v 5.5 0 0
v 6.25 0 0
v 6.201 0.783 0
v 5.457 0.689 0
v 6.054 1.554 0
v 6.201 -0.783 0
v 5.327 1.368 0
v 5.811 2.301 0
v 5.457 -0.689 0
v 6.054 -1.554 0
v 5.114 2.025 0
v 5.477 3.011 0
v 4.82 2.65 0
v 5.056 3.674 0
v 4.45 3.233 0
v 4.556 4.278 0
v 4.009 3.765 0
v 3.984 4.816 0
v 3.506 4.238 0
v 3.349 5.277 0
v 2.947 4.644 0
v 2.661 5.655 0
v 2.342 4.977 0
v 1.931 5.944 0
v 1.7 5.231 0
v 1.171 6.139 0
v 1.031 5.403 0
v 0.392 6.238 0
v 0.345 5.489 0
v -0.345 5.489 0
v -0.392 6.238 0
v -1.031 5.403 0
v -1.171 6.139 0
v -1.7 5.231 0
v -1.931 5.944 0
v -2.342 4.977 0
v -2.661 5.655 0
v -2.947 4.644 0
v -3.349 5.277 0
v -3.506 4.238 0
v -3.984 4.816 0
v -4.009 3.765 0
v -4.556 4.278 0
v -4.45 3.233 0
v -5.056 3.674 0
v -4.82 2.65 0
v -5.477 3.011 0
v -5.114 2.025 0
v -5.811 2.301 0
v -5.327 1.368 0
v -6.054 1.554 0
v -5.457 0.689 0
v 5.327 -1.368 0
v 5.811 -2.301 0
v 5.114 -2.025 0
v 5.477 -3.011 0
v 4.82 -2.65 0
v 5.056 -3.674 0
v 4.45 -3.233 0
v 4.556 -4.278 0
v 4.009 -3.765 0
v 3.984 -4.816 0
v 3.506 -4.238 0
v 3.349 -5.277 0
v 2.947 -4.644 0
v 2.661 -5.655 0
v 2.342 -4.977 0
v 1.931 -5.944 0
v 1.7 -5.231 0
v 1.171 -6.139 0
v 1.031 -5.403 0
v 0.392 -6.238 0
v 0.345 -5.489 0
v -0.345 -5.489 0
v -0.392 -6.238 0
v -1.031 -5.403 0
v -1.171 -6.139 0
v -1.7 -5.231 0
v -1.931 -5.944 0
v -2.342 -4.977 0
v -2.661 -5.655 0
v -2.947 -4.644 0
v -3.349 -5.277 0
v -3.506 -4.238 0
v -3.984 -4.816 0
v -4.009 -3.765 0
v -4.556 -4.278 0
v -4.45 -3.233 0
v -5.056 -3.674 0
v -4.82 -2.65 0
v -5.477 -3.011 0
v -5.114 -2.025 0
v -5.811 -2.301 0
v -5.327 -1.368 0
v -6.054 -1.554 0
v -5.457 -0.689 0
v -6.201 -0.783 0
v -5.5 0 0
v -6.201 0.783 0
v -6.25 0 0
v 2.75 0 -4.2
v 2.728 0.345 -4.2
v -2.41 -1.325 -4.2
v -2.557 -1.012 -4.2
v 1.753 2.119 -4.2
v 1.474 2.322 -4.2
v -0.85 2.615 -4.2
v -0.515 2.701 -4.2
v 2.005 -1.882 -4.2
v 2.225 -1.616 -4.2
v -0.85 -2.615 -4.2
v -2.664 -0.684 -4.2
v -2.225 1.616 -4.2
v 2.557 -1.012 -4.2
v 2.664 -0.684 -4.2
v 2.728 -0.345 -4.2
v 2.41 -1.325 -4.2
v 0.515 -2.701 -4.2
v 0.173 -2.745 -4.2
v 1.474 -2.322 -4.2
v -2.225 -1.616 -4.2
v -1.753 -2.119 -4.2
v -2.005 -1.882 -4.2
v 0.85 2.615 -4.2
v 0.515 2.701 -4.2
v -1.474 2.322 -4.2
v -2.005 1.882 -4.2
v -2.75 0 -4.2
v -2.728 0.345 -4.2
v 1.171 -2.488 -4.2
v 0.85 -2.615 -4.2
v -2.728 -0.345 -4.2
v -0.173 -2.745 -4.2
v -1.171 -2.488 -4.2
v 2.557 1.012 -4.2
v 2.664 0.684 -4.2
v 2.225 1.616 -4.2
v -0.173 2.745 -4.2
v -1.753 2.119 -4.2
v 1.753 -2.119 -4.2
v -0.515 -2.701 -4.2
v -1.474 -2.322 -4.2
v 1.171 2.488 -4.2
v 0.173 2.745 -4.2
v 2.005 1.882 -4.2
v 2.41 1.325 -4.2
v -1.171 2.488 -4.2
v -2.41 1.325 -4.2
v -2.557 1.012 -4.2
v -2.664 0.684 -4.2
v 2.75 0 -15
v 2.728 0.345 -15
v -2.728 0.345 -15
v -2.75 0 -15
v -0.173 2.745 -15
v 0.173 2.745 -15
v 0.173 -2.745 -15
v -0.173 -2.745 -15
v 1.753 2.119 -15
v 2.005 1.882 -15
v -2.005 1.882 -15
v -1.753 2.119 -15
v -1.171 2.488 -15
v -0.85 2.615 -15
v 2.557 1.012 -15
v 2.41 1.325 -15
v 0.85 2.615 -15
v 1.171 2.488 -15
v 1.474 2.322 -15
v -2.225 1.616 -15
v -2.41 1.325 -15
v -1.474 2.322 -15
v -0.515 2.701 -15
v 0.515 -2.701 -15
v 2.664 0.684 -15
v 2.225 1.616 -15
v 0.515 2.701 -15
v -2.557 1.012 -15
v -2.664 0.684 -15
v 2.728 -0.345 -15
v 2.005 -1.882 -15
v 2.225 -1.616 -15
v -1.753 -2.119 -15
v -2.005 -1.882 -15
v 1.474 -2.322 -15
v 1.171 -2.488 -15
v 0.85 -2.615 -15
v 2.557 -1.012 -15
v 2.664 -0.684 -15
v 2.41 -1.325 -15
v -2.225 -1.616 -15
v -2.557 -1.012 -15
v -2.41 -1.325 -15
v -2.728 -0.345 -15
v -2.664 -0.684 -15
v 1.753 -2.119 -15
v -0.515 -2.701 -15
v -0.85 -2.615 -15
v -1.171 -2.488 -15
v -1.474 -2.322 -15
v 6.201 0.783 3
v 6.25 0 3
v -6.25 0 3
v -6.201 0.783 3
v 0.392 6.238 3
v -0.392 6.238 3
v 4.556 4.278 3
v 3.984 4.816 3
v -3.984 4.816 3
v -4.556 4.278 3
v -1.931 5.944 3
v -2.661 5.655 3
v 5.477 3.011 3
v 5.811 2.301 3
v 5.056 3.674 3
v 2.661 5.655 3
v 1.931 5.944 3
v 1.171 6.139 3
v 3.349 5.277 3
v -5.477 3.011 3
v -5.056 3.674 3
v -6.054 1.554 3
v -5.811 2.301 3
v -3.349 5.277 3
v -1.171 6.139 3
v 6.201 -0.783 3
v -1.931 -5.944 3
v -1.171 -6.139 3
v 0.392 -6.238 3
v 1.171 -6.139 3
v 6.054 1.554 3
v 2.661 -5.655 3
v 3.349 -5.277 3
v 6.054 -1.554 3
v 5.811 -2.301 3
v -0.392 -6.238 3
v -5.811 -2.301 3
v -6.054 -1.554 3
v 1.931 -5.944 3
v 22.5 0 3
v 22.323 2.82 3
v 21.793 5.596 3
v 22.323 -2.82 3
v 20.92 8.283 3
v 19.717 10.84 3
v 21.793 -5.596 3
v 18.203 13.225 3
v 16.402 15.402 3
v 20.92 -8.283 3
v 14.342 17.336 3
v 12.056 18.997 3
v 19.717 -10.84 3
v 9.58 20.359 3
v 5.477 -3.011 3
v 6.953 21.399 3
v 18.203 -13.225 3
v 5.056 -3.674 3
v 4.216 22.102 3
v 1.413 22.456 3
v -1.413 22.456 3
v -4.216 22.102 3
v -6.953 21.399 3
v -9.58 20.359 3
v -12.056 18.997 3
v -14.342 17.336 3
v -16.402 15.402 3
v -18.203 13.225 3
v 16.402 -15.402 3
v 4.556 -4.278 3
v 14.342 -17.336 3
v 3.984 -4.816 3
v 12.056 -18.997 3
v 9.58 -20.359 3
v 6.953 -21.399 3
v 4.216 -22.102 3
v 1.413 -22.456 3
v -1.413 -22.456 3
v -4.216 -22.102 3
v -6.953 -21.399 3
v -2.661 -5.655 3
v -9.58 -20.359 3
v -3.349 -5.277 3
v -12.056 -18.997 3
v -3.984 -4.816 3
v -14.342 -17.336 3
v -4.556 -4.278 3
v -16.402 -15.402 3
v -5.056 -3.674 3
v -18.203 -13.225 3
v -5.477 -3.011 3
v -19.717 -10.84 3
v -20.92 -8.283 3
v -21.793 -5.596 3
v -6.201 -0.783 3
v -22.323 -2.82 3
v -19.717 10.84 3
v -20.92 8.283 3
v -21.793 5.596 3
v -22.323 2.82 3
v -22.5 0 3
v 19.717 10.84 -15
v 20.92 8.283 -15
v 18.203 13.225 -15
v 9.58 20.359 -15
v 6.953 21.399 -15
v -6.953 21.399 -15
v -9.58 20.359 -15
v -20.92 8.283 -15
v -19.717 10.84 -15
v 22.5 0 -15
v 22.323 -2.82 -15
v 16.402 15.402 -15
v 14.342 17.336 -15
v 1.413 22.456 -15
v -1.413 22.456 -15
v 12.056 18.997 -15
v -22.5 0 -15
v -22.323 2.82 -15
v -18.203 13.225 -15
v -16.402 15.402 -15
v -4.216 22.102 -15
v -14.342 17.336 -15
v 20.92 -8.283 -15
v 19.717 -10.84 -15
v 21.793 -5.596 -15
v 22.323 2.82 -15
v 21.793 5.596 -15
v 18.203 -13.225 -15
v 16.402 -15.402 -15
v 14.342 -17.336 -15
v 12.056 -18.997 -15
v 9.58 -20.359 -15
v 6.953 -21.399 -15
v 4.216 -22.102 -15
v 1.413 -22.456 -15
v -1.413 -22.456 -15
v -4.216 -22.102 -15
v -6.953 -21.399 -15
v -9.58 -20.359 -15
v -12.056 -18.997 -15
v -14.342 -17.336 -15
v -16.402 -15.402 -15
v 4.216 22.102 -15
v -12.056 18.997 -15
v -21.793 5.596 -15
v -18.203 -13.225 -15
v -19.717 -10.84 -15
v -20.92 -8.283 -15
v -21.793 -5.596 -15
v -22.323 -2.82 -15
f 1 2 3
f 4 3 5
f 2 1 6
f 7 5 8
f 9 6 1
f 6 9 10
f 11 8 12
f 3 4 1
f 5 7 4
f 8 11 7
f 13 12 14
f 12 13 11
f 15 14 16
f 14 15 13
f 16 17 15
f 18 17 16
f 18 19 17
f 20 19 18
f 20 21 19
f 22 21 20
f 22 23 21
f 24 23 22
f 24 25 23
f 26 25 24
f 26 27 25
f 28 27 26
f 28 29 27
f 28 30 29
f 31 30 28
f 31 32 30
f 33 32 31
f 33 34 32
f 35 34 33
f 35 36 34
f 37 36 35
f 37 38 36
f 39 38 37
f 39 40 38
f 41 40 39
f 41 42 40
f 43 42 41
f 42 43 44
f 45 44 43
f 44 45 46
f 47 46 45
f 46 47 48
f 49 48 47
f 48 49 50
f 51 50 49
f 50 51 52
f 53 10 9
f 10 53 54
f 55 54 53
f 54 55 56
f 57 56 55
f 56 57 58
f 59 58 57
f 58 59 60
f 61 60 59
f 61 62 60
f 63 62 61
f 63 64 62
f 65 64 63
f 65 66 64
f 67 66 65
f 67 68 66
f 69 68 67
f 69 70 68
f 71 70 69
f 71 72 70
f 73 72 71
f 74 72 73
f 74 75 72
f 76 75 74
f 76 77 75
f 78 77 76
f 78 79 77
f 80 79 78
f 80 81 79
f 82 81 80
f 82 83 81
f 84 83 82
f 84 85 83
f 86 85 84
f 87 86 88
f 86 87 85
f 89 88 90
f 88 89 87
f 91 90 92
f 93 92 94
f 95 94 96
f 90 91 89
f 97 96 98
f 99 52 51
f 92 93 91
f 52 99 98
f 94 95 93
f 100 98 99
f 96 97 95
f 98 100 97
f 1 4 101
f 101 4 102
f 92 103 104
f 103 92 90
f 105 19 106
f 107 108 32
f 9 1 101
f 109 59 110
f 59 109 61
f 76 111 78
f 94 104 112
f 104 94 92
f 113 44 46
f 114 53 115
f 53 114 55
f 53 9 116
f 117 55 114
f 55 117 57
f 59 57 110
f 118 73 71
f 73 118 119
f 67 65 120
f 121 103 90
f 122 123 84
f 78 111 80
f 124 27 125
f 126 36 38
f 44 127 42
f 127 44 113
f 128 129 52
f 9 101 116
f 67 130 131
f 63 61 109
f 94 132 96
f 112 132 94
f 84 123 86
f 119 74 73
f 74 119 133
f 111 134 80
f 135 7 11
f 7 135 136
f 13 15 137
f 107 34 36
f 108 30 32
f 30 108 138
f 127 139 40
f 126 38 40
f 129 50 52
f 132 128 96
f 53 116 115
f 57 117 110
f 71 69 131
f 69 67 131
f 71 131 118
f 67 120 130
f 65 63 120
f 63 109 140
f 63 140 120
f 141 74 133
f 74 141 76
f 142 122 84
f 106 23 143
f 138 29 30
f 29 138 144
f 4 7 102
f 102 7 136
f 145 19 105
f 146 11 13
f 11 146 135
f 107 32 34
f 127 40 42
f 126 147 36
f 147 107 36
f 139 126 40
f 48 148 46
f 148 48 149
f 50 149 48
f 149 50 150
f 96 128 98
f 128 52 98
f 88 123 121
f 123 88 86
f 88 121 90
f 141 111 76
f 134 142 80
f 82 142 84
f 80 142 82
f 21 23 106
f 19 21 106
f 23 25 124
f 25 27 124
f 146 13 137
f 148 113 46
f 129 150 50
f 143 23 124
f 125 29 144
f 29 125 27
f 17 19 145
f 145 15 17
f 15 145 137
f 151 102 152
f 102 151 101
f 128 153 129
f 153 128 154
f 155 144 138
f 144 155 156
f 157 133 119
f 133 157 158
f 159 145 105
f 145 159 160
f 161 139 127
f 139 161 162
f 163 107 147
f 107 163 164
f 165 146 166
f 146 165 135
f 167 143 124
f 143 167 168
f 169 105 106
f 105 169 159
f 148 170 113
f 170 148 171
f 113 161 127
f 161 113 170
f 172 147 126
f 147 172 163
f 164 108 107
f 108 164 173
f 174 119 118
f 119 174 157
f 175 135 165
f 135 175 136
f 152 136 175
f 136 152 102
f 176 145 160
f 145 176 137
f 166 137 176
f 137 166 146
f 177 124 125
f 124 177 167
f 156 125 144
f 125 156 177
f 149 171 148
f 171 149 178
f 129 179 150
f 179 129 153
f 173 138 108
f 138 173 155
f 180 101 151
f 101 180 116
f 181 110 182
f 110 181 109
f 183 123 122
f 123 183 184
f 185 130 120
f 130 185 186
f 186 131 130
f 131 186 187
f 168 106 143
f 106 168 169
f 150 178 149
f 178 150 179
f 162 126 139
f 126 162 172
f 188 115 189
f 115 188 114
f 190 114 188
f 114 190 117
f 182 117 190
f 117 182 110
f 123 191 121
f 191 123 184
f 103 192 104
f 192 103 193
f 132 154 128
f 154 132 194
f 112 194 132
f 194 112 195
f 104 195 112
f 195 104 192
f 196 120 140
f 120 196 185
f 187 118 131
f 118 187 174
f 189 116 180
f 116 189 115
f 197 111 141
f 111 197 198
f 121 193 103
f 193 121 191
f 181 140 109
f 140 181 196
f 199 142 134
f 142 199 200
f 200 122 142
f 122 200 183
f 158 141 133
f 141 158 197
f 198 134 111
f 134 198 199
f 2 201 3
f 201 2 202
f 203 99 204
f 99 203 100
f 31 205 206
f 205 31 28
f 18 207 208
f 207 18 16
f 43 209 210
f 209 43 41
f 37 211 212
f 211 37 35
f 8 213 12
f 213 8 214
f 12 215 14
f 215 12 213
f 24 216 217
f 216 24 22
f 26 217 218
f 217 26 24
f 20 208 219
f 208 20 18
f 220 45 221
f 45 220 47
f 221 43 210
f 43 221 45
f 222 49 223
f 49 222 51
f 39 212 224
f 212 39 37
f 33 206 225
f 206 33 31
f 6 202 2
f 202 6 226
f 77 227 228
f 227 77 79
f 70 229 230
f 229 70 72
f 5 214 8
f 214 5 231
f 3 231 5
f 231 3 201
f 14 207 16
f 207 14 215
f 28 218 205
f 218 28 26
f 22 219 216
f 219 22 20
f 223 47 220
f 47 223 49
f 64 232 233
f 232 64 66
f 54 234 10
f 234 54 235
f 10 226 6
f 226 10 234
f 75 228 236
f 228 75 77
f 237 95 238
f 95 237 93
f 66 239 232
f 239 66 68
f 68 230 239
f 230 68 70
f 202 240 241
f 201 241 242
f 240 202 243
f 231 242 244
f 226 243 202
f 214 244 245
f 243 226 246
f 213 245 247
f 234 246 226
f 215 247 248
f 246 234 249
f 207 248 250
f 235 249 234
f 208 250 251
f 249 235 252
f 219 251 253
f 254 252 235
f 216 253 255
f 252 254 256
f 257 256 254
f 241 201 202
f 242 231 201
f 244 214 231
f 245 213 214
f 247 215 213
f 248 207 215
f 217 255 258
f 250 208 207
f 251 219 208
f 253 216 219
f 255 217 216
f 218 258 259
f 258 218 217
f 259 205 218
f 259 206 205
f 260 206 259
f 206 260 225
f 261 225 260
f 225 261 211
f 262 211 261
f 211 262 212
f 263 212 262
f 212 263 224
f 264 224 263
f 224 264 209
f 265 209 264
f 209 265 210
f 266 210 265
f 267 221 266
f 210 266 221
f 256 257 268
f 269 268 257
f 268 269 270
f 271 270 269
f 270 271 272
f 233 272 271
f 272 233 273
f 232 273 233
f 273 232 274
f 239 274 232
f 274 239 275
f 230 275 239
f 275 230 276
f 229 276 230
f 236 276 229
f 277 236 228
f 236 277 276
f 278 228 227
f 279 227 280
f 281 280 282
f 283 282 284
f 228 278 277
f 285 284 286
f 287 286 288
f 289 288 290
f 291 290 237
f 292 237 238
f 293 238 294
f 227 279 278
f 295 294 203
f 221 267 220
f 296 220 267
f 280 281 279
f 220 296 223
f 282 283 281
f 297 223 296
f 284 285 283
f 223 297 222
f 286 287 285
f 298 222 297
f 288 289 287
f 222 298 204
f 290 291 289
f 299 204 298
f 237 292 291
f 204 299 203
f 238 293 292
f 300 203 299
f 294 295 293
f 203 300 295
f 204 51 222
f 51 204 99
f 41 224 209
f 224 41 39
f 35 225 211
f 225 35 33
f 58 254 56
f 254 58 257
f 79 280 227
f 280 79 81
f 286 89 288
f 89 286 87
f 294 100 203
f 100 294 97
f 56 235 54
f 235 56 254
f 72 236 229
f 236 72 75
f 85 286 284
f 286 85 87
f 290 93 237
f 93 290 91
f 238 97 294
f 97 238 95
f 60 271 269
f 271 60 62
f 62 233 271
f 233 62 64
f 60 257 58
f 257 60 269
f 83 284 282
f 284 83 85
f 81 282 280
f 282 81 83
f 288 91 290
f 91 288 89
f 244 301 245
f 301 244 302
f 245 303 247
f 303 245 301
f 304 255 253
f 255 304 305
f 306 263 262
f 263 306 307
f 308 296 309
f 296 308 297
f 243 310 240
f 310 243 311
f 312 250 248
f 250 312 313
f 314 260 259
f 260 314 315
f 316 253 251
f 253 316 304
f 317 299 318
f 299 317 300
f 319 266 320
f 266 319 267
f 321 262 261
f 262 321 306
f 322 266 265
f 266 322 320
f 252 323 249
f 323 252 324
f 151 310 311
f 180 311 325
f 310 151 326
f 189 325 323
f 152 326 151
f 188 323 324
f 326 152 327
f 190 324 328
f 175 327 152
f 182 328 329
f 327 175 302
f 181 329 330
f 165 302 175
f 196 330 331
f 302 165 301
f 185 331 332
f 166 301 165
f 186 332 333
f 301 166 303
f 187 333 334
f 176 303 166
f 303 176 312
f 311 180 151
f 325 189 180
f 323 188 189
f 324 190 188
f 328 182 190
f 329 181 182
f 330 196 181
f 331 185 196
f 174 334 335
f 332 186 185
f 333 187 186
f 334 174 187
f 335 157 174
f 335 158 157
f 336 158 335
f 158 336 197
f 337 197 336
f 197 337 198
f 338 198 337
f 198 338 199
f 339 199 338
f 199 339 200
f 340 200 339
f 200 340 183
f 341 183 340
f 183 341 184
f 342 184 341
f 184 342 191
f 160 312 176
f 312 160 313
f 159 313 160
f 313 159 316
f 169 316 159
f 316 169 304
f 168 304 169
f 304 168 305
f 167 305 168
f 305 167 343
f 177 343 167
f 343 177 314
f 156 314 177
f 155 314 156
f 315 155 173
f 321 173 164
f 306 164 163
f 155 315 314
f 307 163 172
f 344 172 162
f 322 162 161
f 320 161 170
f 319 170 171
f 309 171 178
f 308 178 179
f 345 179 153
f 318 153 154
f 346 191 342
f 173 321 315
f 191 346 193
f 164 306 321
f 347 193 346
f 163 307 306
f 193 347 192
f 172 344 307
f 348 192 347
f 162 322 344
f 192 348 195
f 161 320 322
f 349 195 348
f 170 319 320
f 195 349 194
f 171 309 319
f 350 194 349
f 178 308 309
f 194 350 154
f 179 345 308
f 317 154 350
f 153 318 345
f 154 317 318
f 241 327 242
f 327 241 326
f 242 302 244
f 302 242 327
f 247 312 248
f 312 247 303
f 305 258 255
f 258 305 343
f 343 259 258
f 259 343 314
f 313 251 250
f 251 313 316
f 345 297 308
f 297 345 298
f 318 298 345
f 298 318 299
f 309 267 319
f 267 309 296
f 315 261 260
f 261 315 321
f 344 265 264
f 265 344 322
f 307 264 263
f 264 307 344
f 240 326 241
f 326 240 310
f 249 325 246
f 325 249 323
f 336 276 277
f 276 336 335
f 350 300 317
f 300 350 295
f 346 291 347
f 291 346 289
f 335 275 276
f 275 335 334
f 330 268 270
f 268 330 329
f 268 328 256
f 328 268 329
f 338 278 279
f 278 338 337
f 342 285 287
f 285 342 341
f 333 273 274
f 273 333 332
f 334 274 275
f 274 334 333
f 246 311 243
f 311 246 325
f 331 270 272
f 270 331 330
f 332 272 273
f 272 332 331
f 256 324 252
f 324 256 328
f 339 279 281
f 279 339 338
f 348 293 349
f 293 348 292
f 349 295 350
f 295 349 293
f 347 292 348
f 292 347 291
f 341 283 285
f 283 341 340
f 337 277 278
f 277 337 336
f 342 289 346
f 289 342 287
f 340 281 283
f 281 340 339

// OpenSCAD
$fn = 50;

difference() {
	union() {
		translate(v = [0, 0, -15.0]) {
			cylinder(h = 18, r = 22.5);
		}
	}
	union() {
		translate(v = [0, 0, 0]) {
			rotate(a = [0, 0, 0]) {
				difference() {
					union() {
						translate(v = [0, 0, -18.0]) {
							cylinder(h = 18, r = 2.25);
						}
						translate(v = [0, 0, -4.2]) {
							cylinder(h = 4.2, r1 = 2.75, r2 = 5.5);
						}
						translate(v = [0, 0, -18.0]) {
							cylinder(h = 18, r = 2.75);
						}
						translate(v = [0, 0, -18.0]) {
							cylinder(h = 18, r = 2.25);
						}
					}
					union();
				}
			}
		}
		#cylinder(h = 3, r = 6.25);
	}
}
